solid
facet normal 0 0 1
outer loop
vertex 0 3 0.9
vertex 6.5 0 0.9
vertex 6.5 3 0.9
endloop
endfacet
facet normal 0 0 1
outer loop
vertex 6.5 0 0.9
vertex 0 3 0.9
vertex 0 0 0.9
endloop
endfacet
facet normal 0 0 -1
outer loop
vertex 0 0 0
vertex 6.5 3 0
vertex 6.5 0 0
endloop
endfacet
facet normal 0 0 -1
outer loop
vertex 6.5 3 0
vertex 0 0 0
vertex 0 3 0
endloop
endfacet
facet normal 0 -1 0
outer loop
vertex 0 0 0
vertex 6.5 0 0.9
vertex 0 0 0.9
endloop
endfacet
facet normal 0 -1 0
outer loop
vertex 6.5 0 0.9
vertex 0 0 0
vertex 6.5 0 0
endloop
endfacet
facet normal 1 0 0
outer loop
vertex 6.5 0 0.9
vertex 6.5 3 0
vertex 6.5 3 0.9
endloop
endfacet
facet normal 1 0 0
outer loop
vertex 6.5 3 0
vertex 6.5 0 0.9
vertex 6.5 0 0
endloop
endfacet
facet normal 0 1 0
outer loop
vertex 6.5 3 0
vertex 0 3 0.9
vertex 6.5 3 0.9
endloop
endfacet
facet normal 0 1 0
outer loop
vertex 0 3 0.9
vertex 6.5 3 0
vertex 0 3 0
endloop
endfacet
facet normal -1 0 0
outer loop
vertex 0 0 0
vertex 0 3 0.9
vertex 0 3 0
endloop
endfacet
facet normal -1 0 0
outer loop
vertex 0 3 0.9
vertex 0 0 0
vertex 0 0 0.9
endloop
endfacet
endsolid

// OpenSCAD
/* Warning, this is a very basic generator with a lot of approximation 
input data : [VDFN, QRB, 6.5x3x0.9mm, 26, , B, C04-21459B]
generated by com.zoubworld.electronics.cad.model3d.Basic
Date : Sun Feb 15 10:50:49 CET 2026
*/

//body
color("black")
translate([0,0,0])
cube([6.5,3.0,0.9], center=false);
